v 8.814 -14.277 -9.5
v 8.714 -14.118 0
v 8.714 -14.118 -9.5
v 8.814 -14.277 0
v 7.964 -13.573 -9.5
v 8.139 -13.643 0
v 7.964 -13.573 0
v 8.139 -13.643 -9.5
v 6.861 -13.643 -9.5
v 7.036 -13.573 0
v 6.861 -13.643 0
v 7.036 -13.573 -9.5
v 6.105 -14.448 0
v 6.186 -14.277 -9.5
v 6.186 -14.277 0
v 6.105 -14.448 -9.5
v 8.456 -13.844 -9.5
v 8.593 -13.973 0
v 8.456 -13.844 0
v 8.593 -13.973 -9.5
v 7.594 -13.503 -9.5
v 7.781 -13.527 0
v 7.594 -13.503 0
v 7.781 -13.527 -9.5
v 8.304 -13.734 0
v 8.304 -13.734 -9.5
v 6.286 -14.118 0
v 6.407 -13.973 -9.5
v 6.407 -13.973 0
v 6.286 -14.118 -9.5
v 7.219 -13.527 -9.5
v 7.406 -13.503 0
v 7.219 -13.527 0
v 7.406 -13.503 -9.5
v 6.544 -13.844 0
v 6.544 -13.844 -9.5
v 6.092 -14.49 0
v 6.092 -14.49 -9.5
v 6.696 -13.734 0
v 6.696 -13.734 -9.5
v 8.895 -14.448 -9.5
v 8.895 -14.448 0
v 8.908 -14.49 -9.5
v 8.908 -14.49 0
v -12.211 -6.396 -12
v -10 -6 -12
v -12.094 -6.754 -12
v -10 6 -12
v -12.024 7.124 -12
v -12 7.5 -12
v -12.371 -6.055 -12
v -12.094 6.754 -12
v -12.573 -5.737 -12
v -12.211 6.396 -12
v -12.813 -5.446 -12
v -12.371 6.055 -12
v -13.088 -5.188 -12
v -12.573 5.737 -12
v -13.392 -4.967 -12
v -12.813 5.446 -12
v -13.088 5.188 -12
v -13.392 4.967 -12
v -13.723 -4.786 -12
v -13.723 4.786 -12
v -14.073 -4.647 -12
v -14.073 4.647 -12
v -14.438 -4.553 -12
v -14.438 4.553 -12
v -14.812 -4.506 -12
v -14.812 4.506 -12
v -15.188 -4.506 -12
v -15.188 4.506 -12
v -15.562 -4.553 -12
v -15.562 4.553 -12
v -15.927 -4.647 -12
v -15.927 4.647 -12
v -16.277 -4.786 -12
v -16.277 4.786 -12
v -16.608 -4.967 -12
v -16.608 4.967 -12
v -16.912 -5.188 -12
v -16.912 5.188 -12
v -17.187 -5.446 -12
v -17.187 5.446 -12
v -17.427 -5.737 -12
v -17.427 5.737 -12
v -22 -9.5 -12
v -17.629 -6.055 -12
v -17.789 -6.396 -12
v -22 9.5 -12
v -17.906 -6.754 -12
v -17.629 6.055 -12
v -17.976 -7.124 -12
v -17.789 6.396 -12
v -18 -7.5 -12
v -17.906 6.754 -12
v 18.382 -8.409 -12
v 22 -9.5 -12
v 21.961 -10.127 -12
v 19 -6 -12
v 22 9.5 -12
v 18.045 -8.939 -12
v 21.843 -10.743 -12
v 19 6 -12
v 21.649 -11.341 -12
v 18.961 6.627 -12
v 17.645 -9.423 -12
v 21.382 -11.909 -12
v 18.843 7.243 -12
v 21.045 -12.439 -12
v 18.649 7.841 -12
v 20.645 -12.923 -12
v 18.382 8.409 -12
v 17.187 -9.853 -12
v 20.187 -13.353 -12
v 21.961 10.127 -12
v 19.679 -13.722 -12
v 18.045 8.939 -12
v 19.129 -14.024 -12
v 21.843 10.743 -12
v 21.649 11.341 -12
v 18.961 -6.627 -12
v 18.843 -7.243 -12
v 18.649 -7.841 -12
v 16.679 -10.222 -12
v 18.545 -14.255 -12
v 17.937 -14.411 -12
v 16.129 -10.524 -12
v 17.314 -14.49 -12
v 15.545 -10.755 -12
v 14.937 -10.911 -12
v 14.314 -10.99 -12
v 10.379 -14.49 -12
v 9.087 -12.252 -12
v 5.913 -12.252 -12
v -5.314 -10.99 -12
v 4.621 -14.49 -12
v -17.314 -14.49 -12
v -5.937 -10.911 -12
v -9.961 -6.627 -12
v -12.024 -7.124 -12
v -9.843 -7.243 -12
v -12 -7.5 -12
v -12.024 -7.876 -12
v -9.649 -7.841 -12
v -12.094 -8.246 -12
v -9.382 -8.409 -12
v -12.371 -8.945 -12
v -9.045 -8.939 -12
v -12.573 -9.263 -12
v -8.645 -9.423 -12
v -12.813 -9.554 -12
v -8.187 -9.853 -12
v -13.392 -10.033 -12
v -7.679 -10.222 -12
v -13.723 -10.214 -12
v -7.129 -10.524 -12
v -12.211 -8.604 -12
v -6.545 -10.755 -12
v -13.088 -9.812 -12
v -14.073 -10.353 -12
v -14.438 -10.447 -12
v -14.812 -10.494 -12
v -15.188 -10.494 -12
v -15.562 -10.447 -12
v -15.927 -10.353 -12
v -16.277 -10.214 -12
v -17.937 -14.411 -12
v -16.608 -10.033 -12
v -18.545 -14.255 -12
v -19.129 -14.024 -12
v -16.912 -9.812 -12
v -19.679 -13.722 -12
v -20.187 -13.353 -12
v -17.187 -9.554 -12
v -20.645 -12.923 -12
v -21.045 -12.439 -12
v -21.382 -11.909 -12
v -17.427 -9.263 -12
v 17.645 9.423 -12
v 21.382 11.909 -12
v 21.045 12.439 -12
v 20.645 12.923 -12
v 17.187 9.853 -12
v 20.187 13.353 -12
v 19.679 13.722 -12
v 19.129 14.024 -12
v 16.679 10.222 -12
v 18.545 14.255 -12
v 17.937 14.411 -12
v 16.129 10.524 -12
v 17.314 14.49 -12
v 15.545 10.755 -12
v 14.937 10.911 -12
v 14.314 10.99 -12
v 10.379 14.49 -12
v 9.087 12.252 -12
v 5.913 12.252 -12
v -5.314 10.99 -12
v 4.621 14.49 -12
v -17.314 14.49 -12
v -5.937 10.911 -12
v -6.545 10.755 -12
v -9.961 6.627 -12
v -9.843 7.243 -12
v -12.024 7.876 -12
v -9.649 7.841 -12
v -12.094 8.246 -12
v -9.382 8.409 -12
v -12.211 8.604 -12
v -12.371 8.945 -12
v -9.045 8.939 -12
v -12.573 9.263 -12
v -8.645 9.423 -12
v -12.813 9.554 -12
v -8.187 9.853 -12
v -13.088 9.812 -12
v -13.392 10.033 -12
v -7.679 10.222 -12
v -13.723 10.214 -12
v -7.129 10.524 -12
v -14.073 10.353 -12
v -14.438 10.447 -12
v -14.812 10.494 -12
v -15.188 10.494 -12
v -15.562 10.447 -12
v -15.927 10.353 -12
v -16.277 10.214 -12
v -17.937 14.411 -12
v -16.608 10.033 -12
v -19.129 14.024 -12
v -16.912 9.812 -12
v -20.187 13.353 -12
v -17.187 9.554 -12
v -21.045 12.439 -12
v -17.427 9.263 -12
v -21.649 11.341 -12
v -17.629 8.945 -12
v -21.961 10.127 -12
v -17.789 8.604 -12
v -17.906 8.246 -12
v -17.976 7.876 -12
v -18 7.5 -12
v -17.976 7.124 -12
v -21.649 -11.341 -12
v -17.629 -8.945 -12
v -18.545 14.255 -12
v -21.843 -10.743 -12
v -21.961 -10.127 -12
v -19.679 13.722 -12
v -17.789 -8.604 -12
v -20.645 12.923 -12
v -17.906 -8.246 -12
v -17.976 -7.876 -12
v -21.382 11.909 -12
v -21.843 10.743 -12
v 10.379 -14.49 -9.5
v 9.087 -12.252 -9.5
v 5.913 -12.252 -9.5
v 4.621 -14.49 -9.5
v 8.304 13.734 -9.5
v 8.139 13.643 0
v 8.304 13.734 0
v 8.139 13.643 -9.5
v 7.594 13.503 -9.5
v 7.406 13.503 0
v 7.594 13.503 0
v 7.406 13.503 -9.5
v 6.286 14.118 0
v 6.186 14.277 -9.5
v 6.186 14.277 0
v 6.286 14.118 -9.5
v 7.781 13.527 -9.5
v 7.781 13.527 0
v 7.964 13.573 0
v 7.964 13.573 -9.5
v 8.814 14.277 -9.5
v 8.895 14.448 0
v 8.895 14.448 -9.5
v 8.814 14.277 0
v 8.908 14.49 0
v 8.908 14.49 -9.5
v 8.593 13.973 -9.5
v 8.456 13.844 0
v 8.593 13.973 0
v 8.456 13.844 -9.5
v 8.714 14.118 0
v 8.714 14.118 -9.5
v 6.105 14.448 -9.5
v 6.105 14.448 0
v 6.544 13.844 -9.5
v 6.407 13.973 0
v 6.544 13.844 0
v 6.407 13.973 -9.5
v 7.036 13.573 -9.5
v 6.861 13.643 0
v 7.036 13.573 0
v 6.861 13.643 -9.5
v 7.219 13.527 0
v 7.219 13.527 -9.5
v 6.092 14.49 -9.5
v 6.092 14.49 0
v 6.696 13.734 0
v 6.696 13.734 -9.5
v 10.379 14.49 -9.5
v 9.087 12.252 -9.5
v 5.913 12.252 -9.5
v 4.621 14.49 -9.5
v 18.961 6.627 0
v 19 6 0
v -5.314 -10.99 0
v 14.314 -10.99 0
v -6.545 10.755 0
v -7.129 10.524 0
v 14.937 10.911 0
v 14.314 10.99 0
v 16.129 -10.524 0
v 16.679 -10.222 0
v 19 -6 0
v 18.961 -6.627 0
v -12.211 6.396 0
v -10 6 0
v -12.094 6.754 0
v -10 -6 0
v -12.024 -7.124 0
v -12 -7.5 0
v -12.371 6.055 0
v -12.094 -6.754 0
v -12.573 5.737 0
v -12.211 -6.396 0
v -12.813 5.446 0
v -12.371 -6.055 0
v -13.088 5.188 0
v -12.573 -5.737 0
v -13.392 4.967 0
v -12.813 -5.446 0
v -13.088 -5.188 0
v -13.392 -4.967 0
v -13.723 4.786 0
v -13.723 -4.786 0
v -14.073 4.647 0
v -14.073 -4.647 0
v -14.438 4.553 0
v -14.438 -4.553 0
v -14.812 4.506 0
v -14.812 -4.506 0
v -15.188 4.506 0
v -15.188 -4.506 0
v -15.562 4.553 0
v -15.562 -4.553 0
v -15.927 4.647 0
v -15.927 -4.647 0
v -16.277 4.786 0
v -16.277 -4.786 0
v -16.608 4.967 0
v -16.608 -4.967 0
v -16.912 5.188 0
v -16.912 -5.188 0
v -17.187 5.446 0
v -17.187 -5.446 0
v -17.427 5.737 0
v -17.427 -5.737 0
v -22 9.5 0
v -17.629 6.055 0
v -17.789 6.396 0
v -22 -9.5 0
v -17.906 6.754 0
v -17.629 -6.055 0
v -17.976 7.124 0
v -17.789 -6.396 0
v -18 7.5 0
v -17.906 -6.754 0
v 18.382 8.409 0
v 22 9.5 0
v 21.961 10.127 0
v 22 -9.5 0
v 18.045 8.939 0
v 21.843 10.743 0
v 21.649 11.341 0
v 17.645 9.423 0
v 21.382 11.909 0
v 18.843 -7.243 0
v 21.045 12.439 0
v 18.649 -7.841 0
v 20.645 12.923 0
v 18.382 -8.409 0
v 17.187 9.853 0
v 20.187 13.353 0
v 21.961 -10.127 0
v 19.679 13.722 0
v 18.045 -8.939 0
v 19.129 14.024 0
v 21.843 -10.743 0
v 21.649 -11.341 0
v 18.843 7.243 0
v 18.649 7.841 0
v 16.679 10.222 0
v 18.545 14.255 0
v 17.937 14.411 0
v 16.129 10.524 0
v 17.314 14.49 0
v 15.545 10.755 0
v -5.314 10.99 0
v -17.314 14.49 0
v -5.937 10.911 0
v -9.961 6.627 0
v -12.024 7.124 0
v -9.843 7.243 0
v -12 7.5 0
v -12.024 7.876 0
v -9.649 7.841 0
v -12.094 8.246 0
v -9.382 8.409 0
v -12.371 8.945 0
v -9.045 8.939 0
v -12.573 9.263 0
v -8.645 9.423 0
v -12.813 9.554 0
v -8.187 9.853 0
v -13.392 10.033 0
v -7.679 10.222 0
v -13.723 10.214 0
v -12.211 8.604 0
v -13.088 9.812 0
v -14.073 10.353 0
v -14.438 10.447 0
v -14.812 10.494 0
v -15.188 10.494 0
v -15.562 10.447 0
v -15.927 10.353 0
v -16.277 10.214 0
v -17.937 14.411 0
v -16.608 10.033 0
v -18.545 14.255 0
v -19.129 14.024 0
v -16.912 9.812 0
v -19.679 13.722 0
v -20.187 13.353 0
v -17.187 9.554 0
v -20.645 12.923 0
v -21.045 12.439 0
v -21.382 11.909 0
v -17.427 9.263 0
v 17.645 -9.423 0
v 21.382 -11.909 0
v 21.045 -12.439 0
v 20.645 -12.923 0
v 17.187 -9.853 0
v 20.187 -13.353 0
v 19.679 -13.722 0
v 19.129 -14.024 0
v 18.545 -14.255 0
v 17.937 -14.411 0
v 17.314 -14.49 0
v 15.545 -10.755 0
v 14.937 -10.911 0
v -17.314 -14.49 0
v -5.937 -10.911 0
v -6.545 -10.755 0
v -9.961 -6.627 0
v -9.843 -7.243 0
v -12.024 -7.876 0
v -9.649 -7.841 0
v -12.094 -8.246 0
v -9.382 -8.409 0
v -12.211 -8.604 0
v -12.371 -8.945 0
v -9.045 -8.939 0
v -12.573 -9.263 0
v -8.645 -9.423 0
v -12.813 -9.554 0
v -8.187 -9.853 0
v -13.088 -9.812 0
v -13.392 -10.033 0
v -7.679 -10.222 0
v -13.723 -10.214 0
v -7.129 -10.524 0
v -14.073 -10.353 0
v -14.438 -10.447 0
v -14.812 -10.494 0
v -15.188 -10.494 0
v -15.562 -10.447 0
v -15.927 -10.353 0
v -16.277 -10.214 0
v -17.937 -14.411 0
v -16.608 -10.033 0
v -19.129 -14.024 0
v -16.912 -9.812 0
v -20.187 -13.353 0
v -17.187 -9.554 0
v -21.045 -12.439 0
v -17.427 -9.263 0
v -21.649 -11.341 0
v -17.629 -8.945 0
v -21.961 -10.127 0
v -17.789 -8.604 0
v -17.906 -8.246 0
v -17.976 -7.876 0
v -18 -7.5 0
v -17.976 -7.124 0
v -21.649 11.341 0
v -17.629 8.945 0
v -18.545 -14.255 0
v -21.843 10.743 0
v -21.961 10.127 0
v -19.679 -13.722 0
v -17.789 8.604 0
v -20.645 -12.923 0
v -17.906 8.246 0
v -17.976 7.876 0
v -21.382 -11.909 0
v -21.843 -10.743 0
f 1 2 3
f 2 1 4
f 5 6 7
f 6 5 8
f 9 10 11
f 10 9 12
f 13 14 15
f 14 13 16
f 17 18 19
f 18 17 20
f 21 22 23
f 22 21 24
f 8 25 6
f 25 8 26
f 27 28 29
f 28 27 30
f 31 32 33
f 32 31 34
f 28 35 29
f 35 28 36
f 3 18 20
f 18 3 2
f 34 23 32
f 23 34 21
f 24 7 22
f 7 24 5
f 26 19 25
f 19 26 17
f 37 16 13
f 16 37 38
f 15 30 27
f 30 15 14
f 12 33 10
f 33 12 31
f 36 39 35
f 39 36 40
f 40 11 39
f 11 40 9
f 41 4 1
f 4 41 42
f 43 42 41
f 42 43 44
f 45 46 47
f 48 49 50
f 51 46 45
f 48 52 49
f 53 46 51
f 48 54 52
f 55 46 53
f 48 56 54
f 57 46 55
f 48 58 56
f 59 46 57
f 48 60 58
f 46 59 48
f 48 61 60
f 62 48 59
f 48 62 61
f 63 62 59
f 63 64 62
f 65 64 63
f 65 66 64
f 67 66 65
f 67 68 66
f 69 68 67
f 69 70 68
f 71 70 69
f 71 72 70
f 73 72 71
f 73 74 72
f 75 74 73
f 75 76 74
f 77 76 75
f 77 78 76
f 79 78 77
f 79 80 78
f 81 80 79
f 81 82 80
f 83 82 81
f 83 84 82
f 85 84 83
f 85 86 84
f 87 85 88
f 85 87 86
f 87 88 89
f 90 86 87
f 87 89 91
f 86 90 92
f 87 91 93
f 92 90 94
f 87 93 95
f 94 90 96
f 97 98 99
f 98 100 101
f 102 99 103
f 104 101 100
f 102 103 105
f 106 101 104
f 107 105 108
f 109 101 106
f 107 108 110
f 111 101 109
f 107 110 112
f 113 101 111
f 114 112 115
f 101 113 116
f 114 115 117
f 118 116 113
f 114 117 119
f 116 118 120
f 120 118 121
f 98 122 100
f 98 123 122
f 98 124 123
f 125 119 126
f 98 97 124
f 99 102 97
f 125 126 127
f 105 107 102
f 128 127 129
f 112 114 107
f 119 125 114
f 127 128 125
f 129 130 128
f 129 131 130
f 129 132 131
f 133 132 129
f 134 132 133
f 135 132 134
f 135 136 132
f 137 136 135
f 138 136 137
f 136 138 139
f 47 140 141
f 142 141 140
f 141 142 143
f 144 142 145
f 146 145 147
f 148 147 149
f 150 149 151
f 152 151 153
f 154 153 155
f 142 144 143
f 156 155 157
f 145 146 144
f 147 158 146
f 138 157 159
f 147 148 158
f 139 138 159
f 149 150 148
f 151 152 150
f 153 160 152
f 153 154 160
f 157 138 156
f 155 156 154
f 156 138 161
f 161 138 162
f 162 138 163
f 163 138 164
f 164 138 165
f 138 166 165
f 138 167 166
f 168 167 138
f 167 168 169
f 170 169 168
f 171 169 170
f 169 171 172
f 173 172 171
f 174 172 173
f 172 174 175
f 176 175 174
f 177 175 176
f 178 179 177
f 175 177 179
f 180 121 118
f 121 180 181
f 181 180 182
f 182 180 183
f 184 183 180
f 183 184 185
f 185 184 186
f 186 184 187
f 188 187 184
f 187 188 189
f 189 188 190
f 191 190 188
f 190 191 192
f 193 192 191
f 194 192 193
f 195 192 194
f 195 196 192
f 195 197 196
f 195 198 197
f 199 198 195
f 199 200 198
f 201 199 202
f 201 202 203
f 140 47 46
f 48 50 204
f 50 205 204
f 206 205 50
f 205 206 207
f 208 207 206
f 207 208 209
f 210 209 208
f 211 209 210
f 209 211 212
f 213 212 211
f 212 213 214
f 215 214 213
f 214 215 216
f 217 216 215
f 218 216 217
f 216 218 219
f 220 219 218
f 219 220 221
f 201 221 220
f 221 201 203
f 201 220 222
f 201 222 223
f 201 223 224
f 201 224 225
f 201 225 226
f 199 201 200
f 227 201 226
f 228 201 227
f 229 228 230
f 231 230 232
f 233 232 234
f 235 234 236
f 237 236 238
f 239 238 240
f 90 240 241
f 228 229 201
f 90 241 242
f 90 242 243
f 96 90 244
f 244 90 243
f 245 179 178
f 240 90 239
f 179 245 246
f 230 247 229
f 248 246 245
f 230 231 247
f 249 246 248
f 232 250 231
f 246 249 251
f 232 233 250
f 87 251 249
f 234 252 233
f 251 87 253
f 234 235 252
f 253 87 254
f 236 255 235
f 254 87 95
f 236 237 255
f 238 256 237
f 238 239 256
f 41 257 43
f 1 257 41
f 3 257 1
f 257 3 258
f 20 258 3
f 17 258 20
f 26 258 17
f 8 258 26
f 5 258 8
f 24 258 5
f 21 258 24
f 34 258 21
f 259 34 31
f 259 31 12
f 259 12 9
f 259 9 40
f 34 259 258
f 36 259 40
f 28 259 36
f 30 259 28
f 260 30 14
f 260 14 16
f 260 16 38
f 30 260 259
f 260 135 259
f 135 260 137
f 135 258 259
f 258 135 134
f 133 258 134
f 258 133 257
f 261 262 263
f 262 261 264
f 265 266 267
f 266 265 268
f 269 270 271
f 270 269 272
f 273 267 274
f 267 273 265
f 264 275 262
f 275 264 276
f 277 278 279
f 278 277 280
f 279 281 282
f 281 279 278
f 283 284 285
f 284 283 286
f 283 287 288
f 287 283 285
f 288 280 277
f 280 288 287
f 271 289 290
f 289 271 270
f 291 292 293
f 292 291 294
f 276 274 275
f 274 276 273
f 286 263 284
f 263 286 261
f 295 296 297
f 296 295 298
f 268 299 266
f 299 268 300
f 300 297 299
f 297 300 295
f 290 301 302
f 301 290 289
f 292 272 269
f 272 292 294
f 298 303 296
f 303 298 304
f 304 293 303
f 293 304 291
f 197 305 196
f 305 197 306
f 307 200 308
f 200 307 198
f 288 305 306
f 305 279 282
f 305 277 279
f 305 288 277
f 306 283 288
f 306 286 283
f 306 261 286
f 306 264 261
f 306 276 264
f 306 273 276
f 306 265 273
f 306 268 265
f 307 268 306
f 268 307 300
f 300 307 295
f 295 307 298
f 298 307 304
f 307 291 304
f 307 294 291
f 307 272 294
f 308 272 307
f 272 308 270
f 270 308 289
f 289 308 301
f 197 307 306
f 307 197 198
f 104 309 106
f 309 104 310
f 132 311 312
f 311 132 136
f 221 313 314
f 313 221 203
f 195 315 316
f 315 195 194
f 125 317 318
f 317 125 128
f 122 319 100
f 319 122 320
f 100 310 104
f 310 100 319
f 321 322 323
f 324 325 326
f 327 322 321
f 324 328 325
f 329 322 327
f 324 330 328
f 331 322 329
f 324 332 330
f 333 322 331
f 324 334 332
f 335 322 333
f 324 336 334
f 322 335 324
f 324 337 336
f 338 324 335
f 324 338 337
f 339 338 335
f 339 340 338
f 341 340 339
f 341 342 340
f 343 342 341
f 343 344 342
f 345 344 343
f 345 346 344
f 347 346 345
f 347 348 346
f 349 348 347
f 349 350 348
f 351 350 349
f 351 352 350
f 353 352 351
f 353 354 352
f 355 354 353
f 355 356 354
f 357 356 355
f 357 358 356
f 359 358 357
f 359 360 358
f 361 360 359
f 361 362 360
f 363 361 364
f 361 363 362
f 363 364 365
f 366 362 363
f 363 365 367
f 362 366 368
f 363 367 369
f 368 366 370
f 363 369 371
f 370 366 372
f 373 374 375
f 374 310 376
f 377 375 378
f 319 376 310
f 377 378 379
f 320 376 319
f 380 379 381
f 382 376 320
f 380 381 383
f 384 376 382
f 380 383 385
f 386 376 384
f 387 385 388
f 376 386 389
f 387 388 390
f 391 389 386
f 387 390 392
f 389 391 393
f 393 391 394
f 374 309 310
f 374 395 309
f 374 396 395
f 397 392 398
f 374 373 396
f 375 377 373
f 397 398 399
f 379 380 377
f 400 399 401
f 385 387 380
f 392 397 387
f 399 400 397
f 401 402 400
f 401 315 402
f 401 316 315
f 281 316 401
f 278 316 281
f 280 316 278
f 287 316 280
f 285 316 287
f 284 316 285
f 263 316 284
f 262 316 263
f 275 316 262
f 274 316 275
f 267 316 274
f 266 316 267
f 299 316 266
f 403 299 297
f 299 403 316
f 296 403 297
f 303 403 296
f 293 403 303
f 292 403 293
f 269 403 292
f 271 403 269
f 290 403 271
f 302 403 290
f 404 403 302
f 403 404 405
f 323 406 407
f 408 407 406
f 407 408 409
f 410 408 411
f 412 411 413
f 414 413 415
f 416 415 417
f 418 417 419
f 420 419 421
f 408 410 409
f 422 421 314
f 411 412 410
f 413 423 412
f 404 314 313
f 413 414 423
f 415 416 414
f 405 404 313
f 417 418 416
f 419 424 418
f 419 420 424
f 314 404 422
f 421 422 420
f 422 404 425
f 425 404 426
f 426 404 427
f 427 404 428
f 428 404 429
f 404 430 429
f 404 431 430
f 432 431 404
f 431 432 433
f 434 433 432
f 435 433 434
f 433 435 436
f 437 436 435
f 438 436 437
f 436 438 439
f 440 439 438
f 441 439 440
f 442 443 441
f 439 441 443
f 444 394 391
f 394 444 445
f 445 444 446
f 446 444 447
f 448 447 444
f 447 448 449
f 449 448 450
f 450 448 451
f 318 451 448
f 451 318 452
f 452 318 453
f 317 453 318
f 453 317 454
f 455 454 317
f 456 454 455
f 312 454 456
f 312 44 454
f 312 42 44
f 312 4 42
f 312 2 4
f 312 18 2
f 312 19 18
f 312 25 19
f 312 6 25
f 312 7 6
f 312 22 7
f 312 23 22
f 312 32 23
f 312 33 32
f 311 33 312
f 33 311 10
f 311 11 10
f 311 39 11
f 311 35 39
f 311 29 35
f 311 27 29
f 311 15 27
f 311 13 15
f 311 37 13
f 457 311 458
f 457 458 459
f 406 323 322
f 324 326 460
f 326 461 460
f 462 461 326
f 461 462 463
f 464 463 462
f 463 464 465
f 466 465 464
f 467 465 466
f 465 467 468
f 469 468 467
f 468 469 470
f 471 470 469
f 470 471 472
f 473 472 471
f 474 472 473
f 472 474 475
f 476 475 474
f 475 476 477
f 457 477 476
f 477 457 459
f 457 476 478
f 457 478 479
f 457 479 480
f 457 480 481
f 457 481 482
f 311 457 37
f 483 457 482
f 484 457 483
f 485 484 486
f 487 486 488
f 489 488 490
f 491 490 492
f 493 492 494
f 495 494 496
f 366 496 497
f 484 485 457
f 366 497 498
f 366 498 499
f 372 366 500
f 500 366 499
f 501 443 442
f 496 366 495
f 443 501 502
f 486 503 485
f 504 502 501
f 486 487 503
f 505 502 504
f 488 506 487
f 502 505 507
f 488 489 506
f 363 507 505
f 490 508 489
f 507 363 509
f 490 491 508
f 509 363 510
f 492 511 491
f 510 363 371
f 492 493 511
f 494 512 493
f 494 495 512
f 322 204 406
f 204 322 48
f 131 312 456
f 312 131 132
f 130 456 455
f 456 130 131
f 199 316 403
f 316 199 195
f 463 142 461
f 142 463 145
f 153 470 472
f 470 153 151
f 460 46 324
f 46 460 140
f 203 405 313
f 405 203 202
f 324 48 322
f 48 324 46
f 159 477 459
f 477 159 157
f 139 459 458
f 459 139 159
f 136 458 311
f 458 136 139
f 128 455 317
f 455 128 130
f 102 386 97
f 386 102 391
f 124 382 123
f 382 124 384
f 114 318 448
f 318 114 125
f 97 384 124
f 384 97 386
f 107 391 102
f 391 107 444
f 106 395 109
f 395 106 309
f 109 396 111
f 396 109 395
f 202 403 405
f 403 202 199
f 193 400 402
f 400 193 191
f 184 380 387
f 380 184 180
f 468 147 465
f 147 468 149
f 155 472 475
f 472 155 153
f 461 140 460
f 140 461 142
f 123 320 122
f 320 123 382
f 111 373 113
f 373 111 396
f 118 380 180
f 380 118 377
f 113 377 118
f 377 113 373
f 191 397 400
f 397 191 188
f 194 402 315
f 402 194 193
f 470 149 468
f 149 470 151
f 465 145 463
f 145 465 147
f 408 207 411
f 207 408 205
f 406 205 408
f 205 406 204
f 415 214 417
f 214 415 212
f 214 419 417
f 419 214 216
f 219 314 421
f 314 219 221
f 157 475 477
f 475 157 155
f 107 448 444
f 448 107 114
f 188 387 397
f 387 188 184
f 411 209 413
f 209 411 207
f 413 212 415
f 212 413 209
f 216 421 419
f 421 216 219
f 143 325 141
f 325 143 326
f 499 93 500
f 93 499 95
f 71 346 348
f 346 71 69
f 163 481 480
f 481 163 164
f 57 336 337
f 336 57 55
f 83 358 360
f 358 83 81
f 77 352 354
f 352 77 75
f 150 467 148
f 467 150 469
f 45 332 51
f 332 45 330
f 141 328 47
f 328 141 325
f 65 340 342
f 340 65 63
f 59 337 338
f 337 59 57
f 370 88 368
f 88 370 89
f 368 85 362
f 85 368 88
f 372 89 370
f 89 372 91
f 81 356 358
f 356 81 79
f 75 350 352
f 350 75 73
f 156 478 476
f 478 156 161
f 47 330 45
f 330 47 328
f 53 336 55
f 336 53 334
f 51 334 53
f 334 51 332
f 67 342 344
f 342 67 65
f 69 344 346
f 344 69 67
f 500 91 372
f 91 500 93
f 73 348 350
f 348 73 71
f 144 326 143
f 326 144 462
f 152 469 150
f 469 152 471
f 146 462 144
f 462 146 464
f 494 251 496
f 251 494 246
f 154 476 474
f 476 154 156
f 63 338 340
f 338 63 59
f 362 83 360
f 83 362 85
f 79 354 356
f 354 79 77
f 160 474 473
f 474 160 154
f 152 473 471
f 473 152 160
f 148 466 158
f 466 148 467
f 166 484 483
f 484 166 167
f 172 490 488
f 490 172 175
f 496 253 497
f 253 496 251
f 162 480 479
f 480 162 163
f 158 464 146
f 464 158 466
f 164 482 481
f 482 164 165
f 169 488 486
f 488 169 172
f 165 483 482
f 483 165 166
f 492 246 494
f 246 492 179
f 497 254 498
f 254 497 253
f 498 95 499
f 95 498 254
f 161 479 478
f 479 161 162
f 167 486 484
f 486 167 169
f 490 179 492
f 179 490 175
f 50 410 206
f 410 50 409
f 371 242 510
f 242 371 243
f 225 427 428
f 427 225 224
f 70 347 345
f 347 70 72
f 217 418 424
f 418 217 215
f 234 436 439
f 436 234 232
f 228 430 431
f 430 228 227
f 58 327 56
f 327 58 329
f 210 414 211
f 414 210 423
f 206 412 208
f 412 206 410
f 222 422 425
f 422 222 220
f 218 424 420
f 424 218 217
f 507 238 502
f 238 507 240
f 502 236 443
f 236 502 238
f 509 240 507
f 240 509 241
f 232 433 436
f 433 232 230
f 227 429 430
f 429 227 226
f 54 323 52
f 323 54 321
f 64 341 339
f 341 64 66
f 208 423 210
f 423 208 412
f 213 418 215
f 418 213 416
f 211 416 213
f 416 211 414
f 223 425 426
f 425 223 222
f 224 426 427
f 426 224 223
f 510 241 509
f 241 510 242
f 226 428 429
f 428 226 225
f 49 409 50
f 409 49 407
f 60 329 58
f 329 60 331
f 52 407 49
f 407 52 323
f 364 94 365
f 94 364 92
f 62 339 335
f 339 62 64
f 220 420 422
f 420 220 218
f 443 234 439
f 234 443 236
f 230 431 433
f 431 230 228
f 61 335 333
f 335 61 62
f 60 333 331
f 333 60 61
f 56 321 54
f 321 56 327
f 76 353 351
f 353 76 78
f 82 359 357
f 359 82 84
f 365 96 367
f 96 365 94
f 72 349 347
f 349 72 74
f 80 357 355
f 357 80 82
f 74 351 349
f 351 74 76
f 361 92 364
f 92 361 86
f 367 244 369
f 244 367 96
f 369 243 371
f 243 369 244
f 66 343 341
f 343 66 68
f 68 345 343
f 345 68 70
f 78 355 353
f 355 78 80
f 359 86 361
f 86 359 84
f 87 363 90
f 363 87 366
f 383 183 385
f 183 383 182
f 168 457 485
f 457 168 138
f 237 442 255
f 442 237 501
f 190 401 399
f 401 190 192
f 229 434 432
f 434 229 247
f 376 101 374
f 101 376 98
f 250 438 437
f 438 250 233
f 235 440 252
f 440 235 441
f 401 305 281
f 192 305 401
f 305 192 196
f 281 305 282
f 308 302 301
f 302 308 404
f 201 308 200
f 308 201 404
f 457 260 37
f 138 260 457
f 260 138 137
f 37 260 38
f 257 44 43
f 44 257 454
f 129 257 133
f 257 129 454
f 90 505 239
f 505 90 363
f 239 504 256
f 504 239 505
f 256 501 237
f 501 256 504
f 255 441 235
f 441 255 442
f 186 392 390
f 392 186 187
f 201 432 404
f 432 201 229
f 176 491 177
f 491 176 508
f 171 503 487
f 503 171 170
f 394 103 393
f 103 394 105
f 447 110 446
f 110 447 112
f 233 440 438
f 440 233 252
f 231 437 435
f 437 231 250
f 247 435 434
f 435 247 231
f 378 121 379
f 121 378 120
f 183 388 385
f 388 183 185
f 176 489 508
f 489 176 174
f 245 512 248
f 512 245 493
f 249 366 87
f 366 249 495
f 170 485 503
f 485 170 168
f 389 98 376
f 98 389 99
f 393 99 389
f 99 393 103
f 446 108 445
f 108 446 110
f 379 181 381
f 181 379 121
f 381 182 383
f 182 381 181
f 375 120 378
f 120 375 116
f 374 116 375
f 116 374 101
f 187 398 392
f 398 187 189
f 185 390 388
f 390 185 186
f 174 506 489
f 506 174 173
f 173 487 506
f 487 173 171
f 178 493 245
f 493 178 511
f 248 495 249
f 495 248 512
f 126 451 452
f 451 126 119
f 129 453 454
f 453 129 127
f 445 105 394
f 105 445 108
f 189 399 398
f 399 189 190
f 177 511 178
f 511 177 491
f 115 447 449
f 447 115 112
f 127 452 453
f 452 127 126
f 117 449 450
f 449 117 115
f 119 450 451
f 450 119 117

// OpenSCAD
$fn = 50;


difference() {
	union() {
		translate(v = [0, 0, -12]) {
			hull() {
				translate(v = [-17.0000000000, 9.5000000000, 0]) {
					cylinder(h = 12, r = 5);
				}
				translate(v = [17.0000000000, 9.5000000000, 0]) {
					cylinder(h = 12, r = 5);
				}
				translate(v = [-17.0000000000, -9.5000000000, 0]) {
					cylinder(h = 12, r = 5);
				}
				translate(v = [17.0000000000, -9.5000000000, 0]) {
					cylinder(h = 12, r = 5);
				}
			}
		}
	}
	union() {
		translate(v = [7.5000000000, -15, -12]) {
			rotate(a = [0, 0, 0]) {
				difference() {
					union() {
						translate(v = [0, 0, -50.0000000000]) {
							cylinder(h = 100, r = 1.5000000000);
						}
						translate(v = [0, 0, -50.0000000000]) {
							cylinder(h = 100, r = 1.5000000000);
						}
						linear_extrude(height = 2.5000000000) {
							polygon(points = [[3.1735000000, 0.0000000000], [1.5867500000, 2.7483316189], [-1.5867500000, 2.7483316189], [-3.1735000000, 0.0000000000], [-1.5867500000, -2.7483316189], [1.5867500000, -2.7483316189]]);
						}
						translate(v = [0, 0, -50.0000000000]) {
							cylinder(h = 100, r = 1.5000000000);
						}
					}
					union();
				}
			}
		}
		translate(v = [7.5000000000, 15, -12]) {
			rotate(a = [0, 0, 0]) {
				difference() {
					union() {
						translate(v = [0, 0, -50.0000000000]) {
							cylinder(h = 100, r = 1.5000000000);
						}
						translate(v = [0, 0, -50.0000000000]) {
							cylinder(h = 100, r = 1.5000000000);
						}
						linear_extrude(height = 2.5000000000) {
							polygon(points = [[3.1735000000, 0.0000000000], [1.5867500000, 2.7483316189], [-1.5867500000, 2.7483316189], [-3.1735000000, 0.0000000000], [-1.5867500000, -2.7483316189], [1.5867500000, -2.7483316189]]);
						}
						translate(v = [0, 0, -50.0000000000]) {
							cylinder(h = 100, r = 1.5000000000);
						}
					}
					union();
				}
			}
		}
		translate(v = [0, 0, -3]) {
			rotate(a = [0, 0, 180]) {
				difference() {
					union() {
						translate(v = [-4.5000000000, 0, -9]) {
							#hull() {
								translate(v = [-9.5000000000, 6.0000000000, 0]) {
									cylinder(h = 12, r = 5);
								}
								translate(v = [9.5000000000, 6.0000000000, 0]) {
									cylinder(h = 12, r = 5);
								}
								translate(v = [-9.5000000000, -6.0000000000, 0]) {
									cylinder(h = 12, r = 5);
								}
								translate(v = [9.5000000000, -6.0000000000, 0]) {
									cylinder(h = 12, r = 5);
								}
							}
						}
					}
					union();
				}
			}
		}
		translate(v = [-15.0000000000, -7.5000000000, -50.0000000000]) {
			cylinder(h = 100, r = 3.0000000000);
		}
		translate(v = [-15.0000000000, 7.5000000000, -50.0000000000]) {
			cylinder(h = 100, r = 3.0000000000);
		}
		translate(v = [-15.0000000000, 7.5000000000, -50.0000000000]) {
			cylinder(h = 100, r = 3.0000000000);
		}
		translate(v = [0.0000000000, 7.5000000000, -50.0000000000]) {
			cylinder(h = 100, r = 3.0000000000);
		}
		translate(v = [15.0000000000, 7.5000000000, -50.0000000000]) {
			cylinder(h = 100, r = 3.0000000000);
		}
		translate(v = [-15.0000000000, -7.5000000000, -50.0000000000]) {
			cylinder(h = 100, r = 3.0000000000);
		}
		translate(v = [0.0000000000, -7.5000000000, -50.0000000000]) {
			cylinder(h = 100, r = 3.0000000000);
		}
		translate(v = [15.0000000000, -7.5000000000, -50.0000000000]) {
			cylinder(h = 100, r = 3.0000000000);
		}
	}
}
